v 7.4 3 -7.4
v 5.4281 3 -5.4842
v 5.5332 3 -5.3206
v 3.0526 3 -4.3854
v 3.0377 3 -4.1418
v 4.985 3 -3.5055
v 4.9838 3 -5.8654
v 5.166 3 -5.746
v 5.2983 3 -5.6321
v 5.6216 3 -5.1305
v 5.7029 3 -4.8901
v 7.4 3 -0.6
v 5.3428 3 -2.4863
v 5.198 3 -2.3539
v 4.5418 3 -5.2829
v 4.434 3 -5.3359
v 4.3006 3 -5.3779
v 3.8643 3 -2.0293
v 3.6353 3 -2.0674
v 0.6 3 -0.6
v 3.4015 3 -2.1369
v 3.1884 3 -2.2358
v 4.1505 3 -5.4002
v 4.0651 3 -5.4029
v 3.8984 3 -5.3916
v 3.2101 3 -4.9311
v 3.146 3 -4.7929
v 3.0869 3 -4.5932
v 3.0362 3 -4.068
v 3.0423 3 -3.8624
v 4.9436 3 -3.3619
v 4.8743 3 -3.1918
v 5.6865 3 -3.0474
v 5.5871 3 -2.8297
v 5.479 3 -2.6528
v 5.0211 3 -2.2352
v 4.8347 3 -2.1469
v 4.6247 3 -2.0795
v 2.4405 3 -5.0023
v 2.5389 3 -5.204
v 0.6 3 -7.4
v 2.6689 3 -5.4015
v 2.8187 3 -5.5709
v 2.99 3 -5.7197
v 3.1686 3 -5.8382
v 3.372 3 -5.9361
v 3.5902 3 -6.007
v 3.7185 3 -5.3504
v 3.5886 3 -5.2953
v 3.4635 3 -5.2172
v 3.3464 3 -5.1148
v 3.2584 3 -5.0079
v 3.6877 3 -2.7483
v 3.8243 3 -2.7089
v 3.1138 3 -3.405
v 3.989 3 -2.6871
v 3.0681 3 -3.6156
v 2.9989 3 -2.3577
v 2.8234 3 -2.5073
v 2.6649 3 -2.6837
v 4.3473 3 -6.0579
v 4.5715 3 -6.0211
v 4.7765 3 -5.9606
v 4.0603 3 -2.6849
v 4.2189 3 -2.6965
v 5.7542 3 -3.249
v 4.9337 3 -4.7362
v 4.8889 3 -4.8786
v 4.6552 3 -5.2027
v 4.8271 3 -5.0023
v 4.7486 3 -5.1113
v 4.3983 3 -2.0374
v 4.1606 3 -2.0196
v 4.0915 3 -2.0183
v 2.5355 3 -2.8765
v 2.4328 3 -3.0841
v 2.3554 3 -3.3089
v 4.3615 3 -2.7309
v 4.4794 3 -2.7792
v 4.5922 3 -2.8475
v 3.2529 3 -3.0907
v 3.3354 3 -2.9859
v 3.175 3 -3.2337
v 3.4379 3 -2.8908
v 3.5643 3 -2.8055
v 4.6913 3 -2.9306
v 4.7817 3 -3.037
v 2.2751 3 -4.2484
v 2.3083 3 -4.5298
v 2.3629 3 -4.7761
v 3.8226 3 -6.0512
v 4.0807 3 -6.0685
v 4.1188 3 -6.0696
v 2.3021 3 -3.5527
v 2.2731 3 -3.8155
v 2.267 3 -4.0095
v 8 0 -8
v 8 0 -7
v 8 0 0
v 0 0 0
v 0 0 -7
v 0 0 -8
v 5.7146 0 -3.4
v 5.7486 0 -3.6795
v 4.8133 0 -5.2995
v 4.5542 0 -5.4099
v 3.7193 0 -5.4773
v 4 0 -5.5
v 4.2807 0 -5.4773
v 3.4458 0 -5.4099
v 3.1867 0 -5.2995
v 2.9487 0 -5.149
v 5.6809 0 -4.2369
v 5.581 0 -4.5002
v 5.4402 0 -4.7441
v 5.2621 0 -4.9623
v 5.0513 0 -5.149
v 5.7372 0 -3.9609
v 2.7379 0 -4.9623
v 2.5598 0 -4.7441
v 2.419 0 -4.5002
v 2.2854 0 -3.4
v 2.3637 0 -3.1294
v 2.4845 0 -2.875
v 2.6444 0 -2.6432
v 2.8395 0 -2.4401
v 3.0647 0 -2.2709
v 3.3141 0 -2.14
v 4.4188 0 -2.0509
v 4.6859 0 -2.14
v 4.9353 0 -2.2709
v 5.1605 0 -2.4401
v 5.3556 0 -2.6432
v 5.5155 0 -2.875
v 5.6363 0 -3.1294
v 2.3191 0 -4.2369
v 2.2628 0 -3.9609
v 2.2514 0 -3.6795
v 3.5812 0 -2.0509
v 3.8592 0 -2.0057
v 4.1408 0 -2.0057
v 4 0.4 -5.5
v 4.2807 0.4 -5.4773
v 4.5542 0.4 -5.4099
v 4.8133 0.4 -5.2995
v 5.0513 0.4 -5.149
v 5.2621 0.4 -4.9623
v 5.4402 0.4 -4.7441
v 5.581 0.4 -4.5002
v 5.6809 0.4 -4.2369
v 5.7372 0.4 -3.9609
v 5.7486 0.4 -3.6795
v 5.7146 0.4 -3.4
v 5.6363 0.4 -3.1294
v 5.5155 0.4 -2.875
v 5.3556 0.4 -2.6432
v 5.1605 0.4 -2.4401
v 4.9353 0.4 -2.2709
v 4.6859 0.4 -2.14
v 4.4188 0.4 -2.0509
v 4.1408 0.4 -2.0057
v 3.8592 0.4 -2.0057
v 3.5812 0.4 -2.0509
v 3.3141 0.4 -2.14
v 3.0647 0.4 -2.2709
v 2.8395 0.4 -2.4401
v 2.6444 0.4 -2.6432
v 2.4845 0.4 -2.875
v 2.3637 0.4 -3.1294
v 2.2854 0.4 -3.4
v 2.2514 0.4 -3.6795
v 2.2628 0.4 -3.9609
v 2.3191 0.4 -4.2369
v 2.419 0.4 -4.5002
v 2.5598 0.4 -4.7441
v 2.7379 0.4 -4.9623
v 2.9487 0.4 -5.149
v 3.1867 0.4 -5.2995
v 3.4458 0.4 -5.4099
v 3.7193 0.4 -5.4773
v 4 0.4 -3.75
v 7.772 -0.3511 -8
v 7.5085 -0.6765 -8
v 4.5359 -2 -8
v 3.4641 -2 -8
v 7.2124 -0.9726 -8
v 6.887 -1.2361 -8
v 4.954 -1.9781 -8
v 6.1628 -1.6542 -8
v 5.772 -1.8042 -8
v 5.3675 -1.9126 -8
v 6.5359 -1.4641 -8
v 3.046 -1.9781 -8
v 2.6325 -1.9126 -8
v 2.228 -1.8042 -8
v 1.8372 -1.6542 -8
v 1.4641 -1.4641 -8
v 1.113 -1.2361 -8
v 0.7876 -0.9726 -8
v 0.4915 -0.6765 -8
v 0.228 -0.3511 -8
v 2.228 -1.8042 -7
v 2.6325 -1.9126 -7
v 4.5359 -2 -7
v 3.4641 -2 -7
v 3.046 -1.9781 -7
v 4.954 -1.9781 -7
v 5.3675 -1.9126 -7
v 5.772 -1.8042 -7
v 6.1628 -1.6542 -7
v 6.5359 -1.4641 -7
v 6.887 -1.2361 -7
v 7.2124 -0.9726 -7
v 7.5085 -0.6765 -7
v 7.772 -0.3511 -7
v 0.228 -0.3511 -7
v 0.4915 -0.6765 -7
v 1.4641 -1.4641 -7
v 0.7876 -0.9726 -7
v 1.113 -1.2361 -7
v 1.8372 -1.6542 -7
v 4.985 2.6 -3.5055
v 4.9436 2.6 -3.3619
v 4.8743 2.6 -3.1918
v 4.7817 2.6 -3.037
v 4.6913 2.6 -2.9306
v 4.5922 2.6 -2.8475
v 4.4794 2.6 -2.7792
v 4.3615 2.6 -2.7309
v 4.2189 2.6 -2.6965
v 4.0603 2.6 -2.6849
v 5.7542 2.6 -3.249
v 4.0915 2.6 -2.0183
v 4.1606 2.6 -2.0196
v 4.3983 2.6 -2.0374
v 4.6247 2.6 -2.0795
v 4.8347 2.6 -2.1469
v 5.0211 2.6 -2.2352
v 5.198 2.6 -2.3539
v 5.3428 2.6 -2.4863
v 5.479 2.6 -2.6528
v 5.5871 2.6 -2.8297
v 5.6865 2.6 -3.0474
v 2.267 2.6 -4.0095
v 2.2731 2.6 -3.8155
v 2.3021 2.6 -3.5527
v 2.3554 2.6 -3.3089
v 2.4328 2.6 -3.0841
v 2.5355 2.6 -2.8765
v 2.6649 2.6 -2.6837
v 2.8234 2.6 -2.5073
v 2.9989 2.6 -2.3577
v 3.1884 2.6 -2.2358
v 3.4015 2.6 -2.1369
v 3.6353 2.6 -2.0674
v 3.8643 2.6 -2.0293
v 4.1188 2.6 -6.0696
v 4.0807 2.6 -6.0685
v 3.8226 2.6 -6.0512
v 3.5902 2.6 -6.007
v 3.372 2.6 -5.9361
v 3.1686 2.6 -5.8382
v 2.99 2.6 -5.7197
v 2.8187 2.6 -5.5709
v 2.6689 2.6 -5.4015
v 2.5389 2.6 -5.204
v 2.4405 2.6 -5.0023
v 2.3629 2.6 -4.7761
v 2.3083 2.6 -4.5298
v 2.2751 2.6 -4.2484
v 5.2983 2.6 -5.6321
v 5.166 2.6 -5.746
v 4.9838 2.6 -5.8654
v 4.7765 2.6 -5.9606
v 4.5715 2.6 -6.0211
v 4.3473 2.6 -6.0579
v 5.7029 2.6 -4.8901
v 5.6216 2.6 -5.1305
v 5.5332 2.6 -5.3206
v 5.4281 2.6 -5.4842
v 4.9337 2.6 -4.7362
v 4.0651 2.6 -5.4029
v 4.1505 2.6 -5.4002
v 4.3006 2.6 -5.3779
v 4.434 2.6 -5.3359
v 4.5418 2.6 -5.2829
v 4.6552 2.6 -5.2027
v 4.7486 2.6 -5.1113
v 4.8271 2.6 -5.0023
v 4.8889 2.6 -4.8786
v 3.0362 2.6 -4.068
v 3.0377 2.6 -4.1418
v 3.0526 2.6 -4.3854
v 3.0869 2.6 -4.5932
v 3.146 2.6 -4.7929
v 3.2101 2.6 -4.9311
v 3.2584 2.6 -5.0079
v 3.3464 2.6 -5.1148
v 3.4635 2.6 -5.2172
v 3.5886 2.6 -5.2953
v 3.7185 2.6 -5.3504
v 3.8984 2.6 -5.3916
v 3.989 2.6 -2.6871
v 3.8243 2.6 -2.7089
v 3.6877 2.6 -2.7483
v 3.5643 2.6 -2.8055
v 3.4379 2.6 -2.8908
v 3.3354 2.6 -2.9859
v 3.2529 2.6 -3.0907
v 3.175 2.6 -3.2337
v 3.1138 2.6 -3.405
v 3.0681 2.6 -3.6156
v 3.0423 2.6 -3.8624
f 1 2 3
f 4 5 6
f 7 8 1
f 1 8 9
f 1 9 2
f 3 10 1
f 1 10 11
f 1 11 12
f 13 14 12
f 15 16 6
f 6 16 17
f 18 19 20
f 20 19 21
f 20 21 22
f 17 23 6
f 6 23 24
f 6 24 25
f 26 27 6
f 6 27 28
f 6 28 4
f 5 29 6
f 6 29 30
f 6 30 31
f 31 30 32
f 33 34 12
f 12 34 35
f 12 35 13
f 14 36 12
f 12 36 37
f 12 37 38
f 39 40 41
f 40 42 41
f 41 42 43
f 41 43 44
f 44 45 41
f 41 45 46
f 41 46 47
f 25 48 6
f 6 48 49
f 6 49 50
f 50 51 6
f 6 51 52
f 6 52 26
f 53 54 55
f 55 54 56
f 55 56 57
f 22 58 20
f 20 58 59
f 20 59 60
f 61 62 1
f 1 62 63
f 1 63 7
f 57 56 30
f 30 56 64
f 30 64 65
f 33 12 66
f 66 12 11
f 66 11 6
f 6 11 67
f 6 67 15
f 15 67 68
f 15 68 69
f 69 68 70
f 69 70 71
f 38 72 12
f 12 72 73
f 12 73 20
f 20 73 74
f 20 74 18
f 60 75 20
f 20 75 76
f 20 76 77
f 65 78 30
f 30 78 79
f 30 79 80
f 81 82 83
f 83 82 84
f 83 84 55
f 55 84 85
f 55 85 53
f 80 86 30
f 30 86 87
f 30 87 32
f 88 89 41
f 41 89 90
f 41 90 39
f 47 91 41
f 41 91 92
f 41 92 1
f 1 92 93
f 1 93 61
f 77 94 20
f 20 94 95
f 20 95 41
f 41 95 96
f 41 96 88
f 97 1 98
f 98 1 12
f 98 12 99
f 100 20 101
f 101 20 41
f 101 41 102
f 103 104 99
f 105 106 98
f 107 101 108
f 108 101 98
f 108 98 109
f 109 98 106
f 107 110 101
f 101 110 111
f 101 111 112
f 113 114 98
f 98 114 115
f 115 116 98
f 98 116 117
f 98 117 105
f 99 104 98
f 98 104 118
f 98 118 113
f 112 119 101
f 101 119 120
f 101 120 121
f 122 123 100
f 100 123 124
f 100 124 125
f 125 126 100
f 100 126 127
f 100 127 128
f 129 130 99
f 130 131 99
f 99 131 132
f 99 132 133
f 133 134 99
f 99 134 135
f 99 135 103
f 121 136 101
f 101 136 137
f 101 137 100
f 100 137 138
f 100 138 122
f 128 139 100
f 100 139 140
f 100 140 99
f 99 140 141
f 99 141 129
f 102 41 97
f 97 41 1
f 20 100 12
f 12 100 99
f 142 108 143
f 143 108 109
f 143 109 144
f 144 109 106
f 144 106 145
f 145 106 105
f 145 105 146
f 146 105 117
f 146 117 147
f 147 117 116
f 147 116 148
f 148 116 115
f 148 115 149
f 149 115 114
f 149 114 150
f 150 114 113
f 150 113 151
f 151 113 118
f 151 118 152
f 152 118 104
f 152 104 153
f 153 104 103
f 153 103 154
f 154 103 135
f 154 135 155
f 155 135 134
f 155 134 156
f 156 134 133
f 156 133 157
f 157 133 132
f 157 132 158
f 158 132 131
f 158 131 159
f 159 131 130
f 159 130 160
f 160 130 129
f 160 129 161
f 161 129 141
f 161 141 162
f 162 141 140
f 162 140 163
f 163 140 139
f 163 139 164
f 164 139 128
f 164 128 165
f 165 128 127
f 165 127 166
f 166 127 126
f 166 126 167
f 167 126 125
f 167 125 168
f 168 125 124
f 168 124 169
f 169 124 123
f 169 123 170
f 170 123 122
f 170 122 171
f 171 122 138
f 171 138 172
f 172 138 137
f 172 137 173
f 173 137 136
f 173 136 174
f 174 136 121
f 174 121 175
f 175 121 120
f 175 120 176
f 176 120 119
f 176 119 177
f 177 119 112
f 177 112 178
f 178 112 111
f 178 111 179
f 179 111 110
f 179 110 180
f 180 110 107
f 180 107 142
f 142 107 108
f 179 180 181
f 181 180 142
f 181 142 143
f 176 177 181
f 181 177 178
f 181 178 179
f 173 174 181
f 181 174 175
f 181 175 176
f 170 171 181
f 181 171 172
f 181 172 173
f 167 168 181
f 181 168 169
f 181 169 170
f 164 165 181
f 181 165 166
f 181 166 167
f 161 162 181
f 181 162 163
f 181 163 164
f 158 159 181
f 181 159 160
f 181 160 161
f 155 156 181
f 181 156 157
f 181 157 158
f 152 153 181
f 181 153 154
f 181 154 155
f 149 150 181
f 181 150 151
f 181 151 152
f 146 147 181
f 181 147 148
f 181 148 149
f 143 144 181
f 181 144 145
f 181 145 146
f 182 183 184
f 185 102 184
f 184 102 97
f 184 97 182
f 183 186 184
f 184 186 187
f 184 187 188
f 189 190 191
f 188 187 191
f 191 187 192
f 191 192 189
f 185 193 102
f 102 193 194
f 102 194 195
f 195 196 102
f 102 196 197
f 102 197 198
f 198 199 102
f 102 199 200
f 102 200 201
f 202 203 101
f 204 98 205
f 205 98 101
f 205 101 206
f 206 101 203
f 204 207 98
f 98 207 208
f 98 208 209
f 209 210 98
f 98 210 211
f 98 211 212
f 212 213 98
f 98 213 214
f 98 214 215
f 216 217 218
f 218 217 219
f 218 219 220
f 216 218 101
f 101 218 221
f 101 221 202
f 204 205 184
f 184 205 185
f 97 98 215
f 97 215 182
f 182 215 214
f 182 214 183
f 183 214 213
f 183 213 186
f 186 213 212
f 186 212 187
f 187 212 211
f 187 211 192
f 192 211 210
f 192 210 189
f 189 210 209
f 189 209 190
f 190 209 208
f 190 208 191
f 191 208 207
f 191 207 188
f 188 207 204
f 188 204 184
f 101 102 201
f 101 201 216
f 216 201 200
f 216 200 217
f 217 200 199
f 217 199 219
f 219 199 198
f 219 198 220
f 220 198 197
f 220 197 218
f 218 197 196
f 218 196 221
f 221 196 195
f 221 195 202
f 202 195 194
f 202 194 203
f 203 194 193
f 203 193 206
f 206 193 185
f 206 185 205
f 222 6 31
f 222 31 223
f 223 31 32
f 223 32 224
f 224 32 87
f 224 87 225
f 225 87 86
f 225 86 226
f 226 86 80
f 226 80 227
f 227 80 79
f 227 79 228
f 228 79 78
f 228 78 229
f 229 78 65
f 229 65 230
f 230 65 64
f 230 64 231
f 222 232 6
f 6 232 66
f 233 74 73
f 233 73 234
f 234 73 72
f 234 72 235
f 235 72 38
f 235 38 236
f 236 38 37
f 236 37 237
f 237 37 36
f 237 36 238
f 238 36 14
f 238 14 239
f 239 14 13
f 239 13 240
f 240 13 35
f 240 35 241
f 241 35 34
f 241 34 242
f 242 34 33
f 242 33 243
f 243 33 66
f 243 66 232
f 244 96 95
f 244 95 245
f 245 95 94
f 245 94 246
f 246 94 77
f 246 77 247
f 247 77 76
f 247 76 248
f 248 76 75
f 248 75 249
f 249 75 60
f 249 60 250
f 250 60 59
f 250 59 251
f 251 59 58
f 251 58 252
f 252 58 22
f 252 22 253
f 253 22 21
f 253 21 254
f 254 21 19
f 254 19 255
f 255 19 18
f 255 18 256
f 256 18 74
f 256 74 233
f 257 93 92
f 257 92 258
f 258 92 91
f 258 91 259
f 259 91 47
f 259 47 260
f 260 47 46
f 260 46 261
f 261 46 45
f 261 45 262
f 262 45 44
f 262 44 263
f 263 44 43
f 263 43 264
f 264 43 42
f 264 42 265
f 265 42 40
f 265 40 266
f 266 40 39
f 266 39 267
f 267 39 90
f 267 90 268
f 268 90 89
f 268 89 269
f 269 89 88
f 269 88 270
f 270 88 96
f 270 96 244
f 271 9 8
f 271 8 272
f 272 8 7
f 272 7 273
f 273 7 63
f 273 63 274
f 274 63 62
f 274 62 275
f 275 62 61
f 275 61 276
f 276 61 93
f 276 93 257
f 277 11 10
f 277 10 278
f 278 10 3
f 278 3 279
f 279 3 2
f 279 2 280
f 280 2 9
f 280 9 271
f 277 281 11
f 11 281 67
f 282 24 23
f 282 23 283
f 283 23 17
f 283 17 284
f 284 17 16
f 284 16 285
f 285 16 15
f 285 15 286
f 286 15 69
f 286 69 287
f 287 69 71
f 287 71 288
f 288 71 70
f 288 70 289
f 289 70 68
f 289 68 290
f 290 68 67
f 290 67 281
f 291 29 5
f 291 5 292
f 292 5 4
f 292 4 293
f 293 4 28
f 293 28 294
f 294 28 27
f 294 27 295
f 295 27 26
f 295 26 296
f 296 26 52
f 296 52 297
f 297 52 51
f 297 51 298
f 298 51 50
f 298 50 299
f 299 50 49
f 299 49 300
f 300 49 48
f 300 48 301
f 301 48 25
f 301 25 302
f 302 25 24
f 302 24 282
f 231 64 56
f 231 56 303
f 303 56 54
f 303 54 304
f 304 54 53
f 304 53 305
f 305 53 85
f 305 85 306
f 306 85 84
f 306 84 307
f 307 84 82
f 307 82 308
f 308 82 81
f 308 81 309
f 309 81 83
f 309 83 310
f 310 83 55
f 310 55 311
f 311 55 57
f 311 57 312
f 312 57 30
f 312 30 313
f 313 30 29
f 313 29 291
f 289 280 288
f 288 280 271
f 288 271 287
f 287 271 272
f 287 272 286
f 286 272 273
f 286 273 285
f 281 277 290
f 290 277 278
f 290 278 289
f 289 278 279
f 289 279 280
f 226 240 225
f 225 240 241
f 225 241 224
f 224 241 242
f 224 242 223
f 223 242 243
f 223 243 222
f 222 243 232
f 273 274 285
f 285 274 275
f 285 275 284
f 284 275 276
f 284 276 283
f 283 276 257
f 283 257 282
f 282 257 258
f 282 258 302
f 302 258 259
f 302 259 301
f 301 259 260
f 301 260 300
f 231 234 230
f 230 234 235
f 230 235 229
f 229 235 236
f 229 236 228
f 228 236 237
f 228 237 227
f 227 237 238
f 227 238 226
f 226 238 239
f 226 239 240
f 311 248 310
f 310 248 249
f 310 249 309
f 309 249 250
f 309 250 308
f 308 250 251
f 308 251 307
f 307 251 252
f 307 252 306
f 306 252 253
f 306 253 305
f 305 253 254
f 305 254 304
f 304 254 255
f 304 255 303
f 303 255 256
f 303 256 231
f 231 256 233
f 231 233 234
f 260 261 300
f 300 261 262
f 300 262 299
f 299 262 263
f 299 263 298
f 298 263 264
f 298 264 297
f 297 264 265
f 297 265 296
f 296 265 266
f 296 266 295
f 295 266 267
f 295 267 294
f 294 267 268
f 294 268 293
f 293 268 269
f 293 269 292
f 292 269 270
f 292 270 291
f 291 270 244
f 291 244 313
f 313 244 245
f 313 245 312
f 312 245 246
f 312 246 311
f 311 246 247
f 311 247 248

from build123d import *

# Parameters (mm, degrees)
SKETCH1_W               = 8
SKETCH1_H               = 8
BOSS_EXTRUDE1_DEPTH     = 3
CUT_EXTRUDE1_DEPTH      = 12.704699911
CUT_EXTRUDE1_DEPTH_BACK = 12.704699911
CUT_EXTRUDE2_DEPTH      = 11
SKETCH4_R               = 1.75
CUT_EXTRUDE3_DEPTH      = 0.4
SKETCH5_W               = 8
SKETCH5_H               = 1
BOSS_EXTRUDE2_DEPTH     = 2
FILLET1_R               = 4
CUT_EXTRUDE4_DEPTH      = 0.4


with BuildPart() as part:
    # Sketch1 → Boss-Extrude1 (new body)
    with BuildSketch(Plane(origin=(0, 0, 0), x_dir=(1, 0, 0), z_dir=(0, 1, 0))):
        with Locations((4, 4)):
            Rectangle(SKETCH1_W, SKETCH1_H)
    extrude(amount=BOSS_EXTRUDE1_DEPTH)

    # Sketch2 → Cut-Extrude1 (cut, two sides: drawn at the far end of the back side and taken through both)
    with BuildSketch(Plane.XY.offset(-CUT_EXTRUDE1_DEPTH_BACK)):
        Polygon((0, 0), (0.6, 3), (0, 3), align=None)
        Polygon((8, 0), (7.4, 3), (8, 3), align=None)
    extrude(amount=CUT_EXTRUDE1_DEPTH + CUT_EXTRUDE1_DEPTH_BACK, mode=Mode.SUBTRACT)

    # Sketch3 → Cut-Extrude2 (cut)
    with BuildSketch(Plane(origin=(0, 0, 0), x_dir=(0, 0, -1), z_dir=(1, 0, 0))):
        Polygon((0, 0), (0.6, 3), (0, 3), align=None)
        Polygon((8, 3), (7.4, 3), (8, 0), align=None)
    extrude(amount=CUT_EXTRUDE2_DEPTH, mode=Mode.SUBTRACT)

    # Sketch4 → Cut-Extrude3 (cut)
    with BuildSketch(Plane.XZ):
        with Locations(Location((4, -3.75, 0), (0, 0, 270))):
            Circle(SKETCH4_R)
    extrude(amount=-CUT_EXTRUDE3_DEPTH, mode=Mode.SUBTRACT)

    # Sketch5 → Boss-Extrude2 (add)
    with BuildSketch(Plane.XZ):
        with Locations((4, -7.5)):
            Rectangle(SKETCH5_W, SKETCH5_H)
    extrude(amount=BOSS_EXTRUDE2_DEPTH)

    # Fillet1
    # the kernel refuses this fillet: 4 mm, written as the material it takes off along each edge
    with BuildSketch(Plane(origin=(8, -2, -16.660254038), x_dir=(0, 1, 0), z_dir=(0, 0, 1)), Plane(origin=(0, -2, 1.660254038), x_dir=(0, 1, 0), z_dir=(0, 0, -1))) as fillet1_piece_1:
        with BuildLine():
            CenterArc((4, 3.464101615), FILLET1_R, 180, 60)
            Line((0, 3.464101615), (-0.08, 3.464101615))
            Line((-0.08, 3.464101615), (-0.08, 0))
            Line((-0.08, 0), (0, -0.08))
            ThreePointArc((0, -0.08), (1, -0.08), (1.96, -0.069282032))
            Line((1.96, -0.069282032), (2, 0))
        make_face()
    extrude(amount=18.320508076, mode=Mode.SUBTRACT)

    # Sketch6 → Cut-Extrude4 (cut)
    with BuildSketch(Plane(origin=(0, 3, 0), x_dir=(1, 0, 0), z_dir=(0, 1, 0))):
        with BuildLine():
            Line((4.984953699, 3.505457585), (5.754184468, 3.249047329))
            add(Edge.make_bspline(
                [(5.754184468, 3.249047329), (5.738551331, 3.198610805), (5.707936732, 3.099840225), (5.651723194, 2.958278532), (5.587443886, 2.827086856), (5.517410433, 2.704729688), (5.437267593, 2.594367909), (5.351502188, 2.492347505), (5.25756407, 2.400817223), (5.155916755, 2.319581611), (5.047538657, 2.247743191), (4.931170847, 2.187011676), (4.808549951, 2.134705195), (4.678432524, 2.092325917), (4.541682112, 2.058386549), (4.397657073, 2.035969411), (4.247031142, 2.020769852), (4.144181592, 2.01912185), (4.091524212, 2.018278098)],
                knots=[0, 0, 0, 0, 1.126640671, 2.206316847, 3.246446654, 4.24268115, 5.210795778, 6.153057602, 7.084219323, 8.004711971, 8.926421631, 9.854560063, 10.802134612, 11.768317461, 12.772025444, 13.805668576, 14.876536225, 16, 16, 16, 16], degree=3))
            add(Edge.make_bspline(
                [(4.091524212, 2.018278098), (4.026529436, 2.019622049), (3.898682769, 2.022265641), (3.711719127, 2.048877042), (3.533551231, 2.090397174), (3.363924198, 2.147881075), (3.203970267, 2.224018355), (3.052230113, 2.31567777), (2.909808045, 2.424720155), (2.777203704, 2.549307725), (2.656729454, 2.688489389), (2.552550394, 2.841513049), (2.46353299, 3.006222974), (2.391584534, 3.18340452), (2.335325697, 3.372875751), (2.295916265, 3.574374695), (2.271256348, 3.787964822), (2.268446864, 3.934340923), (2.267004981, 4.009463995)],
                knots=[0, 0, 0, 0, 1.025049111, 2.016302254, 2.973197159, 3.90886983, 4.83646737, 5.763135642, 6.70136783, 7.661478232, 8.629732022, 9.600038443, 10.576877021, 11.5787097, 12.612181225, 13.690866959, 14.814907849, 16, 16, 16, 16], degree=3))
            add(Edge.make_bspline(
                [(2.267004981, 4.009463995), (2.268440364, 4.088592426), (2.271240535, 4.242957555), (2.295946649, 4.467391238), (2.33430142, 4.6789069), (2.390655342, 4.87619306), (2.461546504, 5.060638151), (2.550671985, 5.230411199), (2.653811862, 5.387775744), (2.773739341, 5.529847487), (2.90694801, 5.655987983), (3.049697575, 5.767530284), (3.203319761, 5.861106277), (3.366973913, 5.937627827), (3.540879519, 5.996843969), (3.724694381, 6.039484239), (3.918568892, 6.064303618), (4.051121857, 6.067784001), (4.118767802, 6.069560149)],
                knots=[0, 0, 0, 0, 1.212648312, 2.365655595, 3.457000981, 4.504219827, 5.506356588, 6.480637568, 7.437950897, 8.385265166, 9.323599949, 10.245787653, 11.157260172, 12.074946661, 13.00980897, 13.968233668, 14.963125779, 16, 16, 16, 16], degree=3))
            add(Edge.make_bspline(
                [(4.118767802, 6.069560149), (4.177845619, 6.068071541), (4.293675542, 6.065152928), (4.463296702, 6.045323759), (4.624050093, 6.010524892), (4.776804639, 5.963554159), (4.920690778, 5.901565287), (5.05596628, 5.825815524), (5.18309612, 5.736705664), (5.259694467, 5.667100309), (5.298254981, 5.632060149)],
                knots=[0, 0, 0, 0, 1.098510076, 2.153775193, 3.169777012, 4.153122333, 5.120892526, 6.076995459, 7.031936742, 8, 8, 8, 8], degree=3))
            add(Edge.make_bspline(
                [(5.298254981, 5.632060149), (5.320604149, 5.60976374), (5.365827451, 5.564647194), (5.426213252, 5.488477681), (5.483466493, 5.406481188), (5.536678451, 5.317258958), (5.58416733, 5.220136739), (5.628218337, 5.11660602), (5.668774447, 5.006267724), (5.691328308, 4.929479087), (5.702902417, 4.89007297)],
                knots=[0, 0, 0, 0, 0.885292881, 1.791380647, 2.722937556, 3.69093542, 4.703306561, 5.754477758, 6.847650944, 8, 8, 8, 8], degree=3))
            Line((5.702902417, 4.89007297), (4.933671648, 4.736226816))
            add(Edge.make_bspline(
                [(4.933671648, 4.736226816), (4.927133502, 4.76145763), (4.914255072, 4.811155713), (4.888197319, 4.88256913), (4.858307022, 4.950334085), (4.821260737, 5.012790777), (4.781908002, 5.072717729), (4.735316585, 5.127453998), (4.684461977, 5.178434101), (4.62897783, 5.22512899), (4.569525593, 5.266595122), (4.507249934, 5.303870591), (4.441018967, 5.334299022), (4.371713727, 5.358915551), (4.29961025, 5.379554656), (4.224066596, 5.392304393), (4.145731594, 5.40209207), (4.092359182, 5.40262243), (4.065081904, 5.402893482)],
                knots=[0, 0, 0, 0, 1.051226935, 2.070641259, 3.064374968, 4.034983734, 4.997599858, 5.953980297, 6.92954377, 7.901109626, 8.875958313, 9.851998019, 10.826131395, 11.811470594, 12.818270757, 13.847890818, 14.900111925, 16, 16, 16, 16], degree=3))
            add(Edge.make_bspline(
                [(4.065081904, 5.402893482), (4.027621622, 5.402136956), (3.95451036, 5.400660441), (3.84764705, 5.384198307), (3.745794169, 5.361223694), (3.649362485, 5.32614158), (3.558949174, 5.281271846), (3.473526684, 5.226727667), (3.393563858, 5.162742669), (3.319033671, 5.088558841), (3.252152959, 5.002834902), (3.193355266, 4.905393862), (3.144577309, 4.795129453), (3.104977365, 4.673123713), (3.073807698, 4.539086512), (3.051550102, 4.39284594), (3.039240982, 4.234301954), (3.037259111, 4.124602201), (3.03623575, 4.067957585)],
                knots=[0, 0, 0, 0, 0.938194206, 1.831074359, 2.704771284, 3.551924377, 4.396294915, 5.230222094, 6.087631332, 6.958733431, 7.860107878, 8.806247581, 9.804197948, 10.875520245, 12.017191412, 13.250061517, 14.580040491, 16, 16, 16, 16], degree=3))
            add(Edge.make_bspline(
                [(3.03623575, 4.067957585), (3.037249034, 4.007841988), (3.039201475, 3.892008492), (3.051507983, 3.724929387), (3.073907907, 3.571260811), (3.104663329, 3.430730056), (3.144462832, 3.303423199), (3.1931583, 3.189560541), (3.251047919, 3.089008738), (3.318041624, 3.001834743), (3.3924457, 2.926952551), (3.472244969, 2.862570915), (3.55696863, 2.80752487), (3.647126515, 2.762236533), (3.743061533, 2.72797641), (3.843985242, 2.703130369), (3.950267946, 2.687335345), (4.023091528, 2.685752793), (4.060274212, 2.684944765)],
                knots=[0, 0, 0, 0, 1.475208372, 2.842499301, 4.107722225, 5.282836115, 6.369007568, 7.375918121, 8.315702116, 9.208439171, 10.065831443, 10.90006451, 11.71996243, 12.54067204, 13.369972975, 14.214060185, 15.088124569, 16, 16, 16, 16], degree=3))
            add(Edge.make_bspline(
                [(4.060274212, 2.684944765), (4.087802914, 2.685631562), (4.141934021, 2.686982048), (4.22194397, 2.695553476), (4.298737204, 2.711910812), (4.3726896, 2.733540427), (4.444088489, 2.760679214), (4.511844803, 2.795492821), (4.577291618, 2.835505891), (4.639070965, 2.882398144), (4.6980101, 2.93504365), (4.751766089, 2.995888735), (4.801629231, 3.063471428), (4.846966938, 3.138243387), (4.889294086, 3.219564589), (4.92530624, 3.308702064), (4.958854788, 3.404215308), (4.976102112, 3.471120718), (4.984953699, 3.505457585)],
                knots=[0, 0, 0, 0, 0.980177776, 1.927374078, 2.859849964, 3.771585772, 4.668674471, 5.574490016, 6.479656464, 7.396337719, 8.332153134, 9.288470092, 10.28125149, 11.318486971, 12.398724812, 13.541284404, 14.738150009, 16, 16, 16, 16], degree=3))
        make_face()
    extrude(amount=-CUT_EXTRUDE4_DEPTH, mode=Mode.SUBTRACT)


solid = part.part
